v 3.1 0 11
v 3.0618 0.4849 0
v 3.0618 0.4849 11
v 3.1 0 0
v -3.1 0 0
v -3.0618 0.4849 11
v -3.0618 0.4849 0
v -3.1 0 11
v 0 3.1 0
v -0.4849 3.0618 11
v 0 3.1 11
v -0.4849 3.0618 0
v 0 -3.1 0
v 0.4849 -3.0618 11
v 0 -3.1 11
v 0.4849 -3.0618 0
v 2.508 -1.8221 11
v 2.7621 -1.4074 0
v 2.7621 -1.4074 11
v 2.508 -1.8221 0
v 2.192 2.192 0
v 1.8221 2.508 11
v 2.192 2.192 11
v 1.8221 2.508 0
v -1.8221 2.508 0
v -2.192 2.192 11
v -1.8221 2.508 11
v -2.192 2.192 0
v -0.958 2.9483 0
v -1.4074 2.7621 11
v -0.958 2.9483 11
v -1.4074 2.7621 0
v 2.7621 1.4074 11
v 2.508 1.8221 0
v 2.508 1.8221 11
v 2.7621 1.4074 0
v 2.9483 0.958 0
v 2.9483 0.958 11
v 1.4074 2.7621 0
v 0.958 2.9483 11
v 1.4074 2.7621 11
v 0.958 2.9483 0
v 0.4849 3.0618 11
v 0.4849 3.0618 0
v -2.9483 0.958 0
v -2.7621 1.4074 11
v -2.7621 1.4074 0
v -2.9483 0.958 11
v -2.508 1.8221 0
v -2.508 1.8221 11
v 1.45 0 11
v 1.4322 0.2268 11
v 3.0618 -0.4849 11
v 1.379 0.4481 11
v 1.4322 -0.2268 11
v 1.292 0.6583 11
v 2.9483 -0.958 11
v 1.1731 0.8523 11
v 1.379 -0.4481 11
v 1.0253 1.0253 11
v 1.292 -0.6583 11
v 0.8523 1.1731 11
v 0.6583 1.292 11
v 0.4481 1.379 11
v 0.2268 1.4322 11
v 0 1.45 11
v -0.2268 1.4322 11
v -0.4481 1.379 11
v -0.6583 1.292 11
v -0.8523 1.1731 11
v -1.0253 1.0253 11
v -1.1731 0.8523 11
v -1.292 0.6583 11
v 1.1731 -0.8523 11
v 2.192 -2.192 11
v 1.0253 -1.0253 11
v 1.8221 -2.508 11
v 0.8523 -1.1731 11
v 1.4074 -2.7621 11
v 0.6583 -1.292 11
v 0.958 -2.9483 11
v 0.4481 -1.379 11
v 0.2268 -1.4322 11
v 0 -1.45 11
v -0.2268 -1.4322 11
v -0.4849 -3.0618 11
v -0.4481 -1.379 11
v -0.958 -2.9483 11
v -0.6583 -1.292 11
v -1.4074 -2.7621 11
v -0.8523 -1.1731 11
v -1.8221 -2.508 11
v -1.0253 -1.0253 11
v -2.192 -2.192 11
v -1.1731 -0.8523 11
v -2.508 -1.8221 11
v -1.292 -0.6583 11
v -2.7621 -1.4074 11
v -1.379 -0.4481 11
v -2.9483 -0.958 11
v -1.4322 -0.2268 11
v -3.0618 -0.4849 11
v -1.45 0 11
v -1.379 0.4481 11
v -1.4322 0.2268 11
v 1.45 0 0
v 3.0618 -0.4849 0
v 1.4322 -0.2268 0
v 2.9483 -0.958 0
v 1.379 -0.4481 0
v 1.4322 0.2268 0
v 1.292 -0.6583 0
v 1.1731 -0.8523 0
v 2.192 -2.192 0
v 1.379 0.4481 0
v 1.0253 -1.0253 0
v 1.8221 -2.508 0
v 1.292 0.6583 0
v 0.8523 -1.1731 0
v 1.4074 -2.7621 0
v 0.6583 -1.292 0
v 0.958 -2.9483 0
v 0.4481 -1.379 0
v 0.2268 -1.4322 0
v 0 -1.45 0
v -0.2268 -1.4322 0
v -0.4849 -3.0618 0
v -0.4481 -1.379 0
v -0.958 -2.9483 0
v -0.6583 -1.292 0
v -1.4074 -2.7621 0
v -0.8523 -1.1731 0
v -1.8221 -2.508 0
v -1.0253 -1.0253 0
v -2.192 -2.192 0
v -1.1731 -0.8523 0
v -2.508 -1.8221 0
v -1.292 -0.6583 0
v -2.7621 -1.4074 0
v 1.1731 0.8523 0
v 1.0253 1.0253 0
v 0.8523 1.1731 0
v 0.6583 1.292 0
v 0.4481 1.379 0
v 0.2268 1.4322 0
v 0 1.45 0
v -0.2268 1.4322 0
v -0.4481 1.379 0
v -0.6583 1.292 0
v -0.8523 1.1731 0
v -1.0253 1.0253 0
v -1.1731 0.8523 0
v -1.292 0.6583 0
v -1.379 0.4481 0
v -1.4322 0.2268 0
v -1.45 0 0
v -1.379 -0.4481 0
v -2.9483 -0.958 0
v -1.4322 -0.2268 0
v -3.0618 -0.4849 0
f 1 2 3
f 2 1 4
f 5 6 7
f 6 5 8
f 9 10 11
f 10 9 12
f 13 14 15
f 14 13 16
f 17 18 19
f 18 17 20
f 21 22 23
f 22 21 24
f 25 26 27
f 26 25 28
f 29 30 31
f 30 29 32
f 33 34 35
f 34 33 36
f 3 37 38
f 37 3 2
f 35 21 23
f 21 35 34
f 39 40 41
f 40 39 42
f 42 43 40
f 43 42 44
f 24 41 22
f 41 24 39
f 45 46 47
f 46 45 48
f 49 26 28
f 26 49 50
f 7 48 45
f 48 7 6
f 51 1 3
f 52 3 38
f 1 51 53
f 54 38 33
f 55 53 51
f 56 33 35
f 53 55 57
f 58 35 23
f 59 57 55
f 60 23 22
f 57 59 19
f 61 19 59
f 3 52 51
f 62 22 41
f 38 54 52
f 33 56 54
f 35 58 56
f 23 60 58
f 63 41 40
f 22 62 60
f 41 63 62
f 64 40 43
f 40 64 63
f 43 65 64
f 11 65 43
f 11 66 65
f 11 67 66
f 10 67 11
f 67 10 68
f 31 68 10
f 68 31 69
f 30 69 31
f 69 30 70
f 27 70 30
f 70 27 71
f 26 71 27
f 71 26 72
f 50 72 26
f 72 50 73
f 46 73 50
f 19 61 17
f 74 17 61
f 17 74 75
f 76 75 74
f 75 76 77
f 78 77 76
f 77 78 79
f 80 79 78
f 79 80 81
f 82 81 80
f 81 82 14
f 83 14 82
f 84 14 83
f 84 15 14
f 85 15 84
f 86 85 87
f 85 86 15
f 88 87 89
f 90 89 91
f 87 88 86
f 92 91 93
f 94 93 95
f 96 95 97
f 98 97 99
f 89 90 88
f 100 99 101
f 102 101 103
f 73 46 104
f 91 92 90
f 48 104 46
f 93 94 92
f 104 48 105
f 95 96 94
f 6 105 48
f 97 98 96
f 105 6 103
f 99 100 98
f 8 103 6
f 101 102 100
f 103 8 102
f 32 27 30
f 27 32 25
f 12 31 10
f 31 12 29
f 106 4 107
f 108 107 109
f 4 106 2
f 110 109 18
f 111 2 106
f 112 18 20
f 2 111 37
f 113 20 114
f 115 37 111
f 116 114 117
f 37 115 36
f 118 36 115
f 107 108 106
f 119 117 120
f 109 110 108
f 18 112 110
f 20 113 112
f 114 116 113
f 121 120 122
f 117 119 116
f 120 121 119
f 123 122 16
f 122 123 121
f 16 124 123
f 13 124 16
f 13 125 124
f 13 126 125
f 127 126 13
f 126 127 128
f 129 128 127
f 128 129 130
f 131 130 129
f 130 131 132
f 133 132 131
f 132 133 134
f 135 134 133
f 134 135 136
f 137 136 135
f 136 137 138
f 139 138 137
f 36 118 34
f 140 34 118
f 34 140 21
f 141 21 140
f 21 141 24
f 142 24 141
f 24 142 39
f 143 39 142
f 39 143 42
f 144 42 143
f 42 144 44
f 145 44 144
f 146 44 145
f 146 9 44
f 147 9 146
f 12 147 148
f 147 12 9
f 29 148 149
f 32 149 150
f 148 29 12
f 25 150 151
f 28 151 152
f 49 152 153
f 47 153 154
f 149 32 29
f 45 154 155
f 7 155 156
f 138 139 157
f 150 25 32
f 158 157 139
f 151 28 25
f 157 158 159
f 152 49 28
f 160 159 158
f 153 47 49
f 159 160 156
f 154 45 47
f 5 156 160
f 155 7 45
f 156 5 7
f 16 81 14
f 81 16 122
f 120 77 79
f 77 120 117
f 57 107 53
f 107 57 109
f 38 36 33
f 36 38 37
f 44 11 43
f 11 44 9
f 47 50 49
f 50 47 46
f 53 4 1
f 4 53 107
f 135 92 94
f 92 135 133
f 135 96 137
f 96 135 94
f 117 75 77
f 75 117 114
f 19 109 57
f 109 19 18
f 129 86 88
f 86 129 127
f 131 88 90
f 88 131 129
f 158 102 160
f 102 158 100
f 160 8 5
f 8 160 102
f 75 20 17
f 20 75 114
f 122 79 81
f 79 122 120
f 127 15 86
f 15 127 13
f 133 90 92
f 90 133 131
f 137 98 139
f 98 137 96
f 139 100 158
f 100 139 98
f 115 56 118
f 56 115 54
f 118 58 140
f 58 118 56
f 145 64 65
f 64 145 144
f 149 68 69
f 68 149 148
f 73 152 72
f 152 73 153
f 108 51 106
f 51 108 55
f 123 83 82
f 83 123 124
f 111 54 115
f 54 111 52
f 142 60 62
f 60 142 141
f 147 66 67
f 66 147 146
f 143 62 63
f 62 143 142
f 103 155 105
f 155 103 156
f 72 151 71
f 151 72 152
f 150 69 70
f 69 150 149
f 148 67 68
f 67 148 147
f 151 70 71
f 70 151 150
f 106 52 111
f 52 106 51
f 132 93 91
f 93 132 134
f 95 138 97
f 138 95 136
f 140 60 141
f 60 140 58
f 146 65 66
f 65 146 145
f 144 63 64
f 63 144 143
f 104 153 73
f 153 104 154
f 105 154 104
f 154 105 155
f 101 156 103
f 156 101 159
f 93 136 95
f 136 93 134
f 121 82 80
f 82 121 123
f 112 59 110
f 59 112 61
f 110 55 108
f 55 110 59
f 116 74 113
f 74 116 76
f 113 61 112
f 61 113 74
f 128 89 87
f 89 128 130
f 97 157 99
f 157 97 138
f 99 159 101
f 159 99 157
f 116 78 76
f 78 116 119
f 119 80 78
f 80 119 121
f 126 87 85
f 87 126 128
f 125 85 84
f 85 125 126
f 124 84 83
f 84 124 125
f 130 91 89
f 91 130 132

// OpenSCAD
module spacer(){
    difference(){
        cylinder(d=6.2, h=11);
        translate([0,0,-0.5])cylinder(d=2.9, h=12);
    }
}

$fn=40;
spacer();
